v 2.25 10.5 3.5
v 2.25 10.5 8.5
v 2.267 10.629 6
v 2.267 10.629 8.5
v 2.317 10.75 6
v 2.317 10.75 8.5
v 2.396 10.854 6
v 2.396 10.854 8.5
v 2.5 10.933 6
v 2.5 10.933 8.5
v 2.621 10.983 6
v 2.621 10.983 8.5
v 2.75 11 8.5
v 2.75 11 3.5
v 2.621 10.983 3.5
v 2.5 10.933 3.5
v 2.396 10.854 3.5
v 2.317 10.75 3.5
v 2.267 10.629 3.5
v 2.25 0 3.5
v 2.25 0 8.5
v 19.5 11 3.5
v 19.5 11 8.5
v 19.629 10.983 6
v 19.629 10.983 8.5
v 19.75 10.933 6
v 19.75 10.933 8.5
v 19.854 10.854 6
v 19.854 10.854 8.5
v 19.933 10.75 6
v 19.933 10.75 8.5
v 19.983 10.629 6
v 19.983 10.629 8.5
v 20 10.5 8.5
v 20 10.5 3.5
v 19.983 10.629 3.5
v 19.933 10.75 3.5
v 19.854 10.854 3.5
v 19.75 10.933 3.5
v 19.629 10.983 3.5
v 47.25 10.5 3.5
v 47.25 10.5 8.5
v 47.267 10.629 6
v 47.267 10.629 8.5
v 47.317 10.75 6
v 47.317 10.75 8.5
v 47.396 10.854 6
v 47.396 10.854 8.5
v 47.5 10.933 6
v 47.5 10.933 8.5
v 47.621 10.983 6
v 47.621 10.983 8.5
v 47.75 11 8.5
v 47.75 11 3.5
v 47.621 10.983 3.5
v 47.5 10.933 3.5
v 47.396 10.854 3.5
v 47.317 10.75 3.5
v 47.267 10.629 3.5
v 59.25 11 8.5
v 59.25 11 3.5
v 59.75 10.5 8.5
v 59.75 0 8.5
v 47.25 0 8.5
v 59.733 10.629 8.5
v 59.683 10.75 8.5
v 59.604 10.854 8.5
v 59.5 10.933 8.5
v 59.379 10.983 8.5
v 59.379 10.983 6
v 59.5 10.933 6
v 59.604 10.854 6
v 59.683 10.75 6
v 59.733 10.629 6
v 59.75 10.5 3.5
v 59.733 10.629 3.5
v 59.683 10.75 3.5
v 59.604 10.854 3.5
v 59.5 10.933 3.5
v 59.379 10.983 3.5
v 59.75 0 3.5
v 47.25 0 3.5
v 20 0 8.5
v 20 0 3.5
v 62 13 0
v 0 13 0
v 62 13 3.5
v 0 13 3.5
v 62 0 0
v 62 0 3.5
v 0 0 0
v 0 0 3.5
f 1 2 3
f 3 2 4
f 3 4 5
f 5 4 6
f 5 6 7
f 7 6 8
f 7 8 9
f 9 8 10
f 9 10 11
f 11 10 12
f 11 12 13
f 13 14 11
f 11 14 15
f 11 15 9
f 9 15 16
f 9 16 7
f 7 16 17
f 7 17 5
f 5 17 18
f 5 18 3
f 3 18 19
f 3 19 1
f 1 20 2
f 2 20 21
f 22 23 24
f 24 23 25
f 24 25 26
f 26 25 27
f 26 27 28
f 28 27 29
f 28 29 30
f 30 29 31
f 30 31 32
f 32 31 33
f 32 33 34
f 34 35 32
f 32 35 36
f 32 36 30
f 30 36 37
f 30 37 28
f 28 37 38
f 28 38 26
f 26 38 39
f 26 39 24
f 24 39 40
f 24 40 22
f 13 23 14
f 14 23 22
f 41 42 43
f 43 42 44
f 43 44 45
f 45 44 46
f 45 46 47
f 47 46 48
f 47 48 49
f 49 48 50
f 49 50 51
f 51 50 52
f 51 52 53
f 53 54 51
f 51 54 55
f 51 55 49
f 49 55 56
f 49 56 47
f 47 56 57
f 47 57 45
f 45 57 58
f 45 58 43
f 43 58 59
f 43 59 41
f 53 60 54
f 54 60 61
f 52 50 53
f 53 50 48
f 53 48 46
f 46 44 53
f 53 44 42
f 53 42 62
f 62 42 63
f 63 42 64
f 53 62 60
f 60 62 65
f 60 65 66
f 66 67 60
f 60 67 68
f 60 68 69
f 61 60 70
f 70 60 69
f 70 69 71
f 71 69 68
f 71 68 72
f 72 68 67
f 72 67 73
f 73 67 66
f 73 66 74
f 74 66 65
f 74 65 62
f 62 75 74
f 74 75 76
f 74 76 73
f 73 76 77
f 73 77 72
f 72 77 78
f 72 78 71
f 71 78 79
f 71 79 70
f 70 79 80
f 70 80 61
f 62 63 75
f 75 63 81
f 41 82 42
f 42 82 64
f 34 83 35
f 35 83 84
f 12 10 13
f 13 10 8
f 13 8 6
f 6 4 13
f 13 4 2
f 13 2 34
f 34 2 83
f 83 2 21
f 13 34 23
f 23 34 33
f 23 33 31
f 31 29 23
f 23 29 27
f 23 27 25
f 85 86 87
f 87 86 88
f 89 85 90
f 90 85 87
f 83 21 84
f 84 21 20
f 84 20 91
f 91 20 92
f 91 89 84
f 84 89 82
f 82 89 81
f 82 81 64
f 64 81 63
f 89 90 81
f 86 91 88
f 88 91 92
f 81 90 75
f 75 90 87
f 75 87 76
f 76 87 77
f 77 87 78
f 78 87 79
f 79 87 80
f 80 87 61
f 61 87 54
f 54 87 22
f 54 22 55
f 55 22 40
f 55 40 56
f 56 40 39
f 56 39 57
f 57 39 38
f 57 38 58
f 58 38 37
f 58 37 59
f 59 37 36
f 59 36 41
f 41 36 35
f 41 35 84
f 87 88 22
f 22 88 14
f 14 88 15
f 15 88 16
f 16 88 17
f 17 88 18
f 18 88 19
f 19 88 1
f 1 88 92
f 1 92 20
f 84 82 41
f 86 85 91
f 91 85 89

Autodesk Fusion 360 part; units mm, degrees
sketch "Sketch1" plane through (0, 0, 0) normal (0, 0, 1) x (1, 0, 0)
  line L0 (0, 0) -> (62, 0)
  line L1 (62, 0) -> (62, 13)
  line L2 (62, 13) -> (0, 13)
  line L3 (0, 13) -> (0, 0)
  dimension "d1" = 62
  dimension "d2" = 13
extrude "Extrude1" add sketch "Sketch1" along normal blind 3.5
sketch "Sketch2" plane through (0, 0, 3.5) normal (0, 0, 1) x (-1, 0, 0)
  line L0 (0, -13) -> (0, 0)
  line L1 (0, 0) -> (-62, 0)
  line L2 (-62, 0) -> (-62, -13)
  line L3 (-62, -13) -> (0, -13)
  line L4 (-2.25, 0) -> (-59.75, 0)
  line L5 (-59.75, 0) -> (-59.75, -11)
  line L6 (-59.75, -11) -> (-2.25, -11)
  line L7 (-2.25, -11) -> (-2.25, 0)
  line L8 (-30.25, 0) -> (-59.75, 0)
  line L9 (-59.75, 0) -> (-59.75, -11)
  line L10 (-59.75, -11) -> (-30.25, -11)
  line L11 (-30.25, -11) -> (-30.25, 0)
  dimension "d5" = 57.5
  dimension "d6" = 11
  dimension "d7" = 2.25
  dimension "d8" = 29.5
  dimension "d9" = 11
  dimension "d22" = 2.25
extrude "Extrude7" add sketch "Sketch2" along normal blind 5 contours L1 L4 L6 L7 L11 | L1 L4 L5 L6 L8 L9 L10 L11
sketch "Sketch6" plane through (0, 0, 8.5) normal (0, 0, 1) x (-1, 0, 0)
  line L0 (-2.25, -11) -> (-2.25, 0)
  line L1 (-2.25, 0) -> (-59.75, 0)
  line L2 (-59.75, 0) -> (-59.75, -11)
  line L3 (-59.75, -11) -> (-2.25, -11)
  line L4 (-20, -11) -> (-47.25, -11)
  line L5 (-47.25, -11) -> (-47.25, 0)
  line L6 (-47.25, 0) -> (-20, 0)
  line L7 (-20, 0) -> (-20, -11)
  line L8 (-2.25, -11) -> (-2.25, 0)
  dimension "d30" = 17.75
  dimension "d31" = 27.25
extrude "Extrude9" cut sketch "Sketch6" against normal blind 5 contours L1 L3 L4 L5 L6 L7
fillet "Fillet2" radius 0.5 4 edges at (59.75, 11, 6) (47.25, 11, 6) (20, 11, 6) (2.25, 11, 6)
